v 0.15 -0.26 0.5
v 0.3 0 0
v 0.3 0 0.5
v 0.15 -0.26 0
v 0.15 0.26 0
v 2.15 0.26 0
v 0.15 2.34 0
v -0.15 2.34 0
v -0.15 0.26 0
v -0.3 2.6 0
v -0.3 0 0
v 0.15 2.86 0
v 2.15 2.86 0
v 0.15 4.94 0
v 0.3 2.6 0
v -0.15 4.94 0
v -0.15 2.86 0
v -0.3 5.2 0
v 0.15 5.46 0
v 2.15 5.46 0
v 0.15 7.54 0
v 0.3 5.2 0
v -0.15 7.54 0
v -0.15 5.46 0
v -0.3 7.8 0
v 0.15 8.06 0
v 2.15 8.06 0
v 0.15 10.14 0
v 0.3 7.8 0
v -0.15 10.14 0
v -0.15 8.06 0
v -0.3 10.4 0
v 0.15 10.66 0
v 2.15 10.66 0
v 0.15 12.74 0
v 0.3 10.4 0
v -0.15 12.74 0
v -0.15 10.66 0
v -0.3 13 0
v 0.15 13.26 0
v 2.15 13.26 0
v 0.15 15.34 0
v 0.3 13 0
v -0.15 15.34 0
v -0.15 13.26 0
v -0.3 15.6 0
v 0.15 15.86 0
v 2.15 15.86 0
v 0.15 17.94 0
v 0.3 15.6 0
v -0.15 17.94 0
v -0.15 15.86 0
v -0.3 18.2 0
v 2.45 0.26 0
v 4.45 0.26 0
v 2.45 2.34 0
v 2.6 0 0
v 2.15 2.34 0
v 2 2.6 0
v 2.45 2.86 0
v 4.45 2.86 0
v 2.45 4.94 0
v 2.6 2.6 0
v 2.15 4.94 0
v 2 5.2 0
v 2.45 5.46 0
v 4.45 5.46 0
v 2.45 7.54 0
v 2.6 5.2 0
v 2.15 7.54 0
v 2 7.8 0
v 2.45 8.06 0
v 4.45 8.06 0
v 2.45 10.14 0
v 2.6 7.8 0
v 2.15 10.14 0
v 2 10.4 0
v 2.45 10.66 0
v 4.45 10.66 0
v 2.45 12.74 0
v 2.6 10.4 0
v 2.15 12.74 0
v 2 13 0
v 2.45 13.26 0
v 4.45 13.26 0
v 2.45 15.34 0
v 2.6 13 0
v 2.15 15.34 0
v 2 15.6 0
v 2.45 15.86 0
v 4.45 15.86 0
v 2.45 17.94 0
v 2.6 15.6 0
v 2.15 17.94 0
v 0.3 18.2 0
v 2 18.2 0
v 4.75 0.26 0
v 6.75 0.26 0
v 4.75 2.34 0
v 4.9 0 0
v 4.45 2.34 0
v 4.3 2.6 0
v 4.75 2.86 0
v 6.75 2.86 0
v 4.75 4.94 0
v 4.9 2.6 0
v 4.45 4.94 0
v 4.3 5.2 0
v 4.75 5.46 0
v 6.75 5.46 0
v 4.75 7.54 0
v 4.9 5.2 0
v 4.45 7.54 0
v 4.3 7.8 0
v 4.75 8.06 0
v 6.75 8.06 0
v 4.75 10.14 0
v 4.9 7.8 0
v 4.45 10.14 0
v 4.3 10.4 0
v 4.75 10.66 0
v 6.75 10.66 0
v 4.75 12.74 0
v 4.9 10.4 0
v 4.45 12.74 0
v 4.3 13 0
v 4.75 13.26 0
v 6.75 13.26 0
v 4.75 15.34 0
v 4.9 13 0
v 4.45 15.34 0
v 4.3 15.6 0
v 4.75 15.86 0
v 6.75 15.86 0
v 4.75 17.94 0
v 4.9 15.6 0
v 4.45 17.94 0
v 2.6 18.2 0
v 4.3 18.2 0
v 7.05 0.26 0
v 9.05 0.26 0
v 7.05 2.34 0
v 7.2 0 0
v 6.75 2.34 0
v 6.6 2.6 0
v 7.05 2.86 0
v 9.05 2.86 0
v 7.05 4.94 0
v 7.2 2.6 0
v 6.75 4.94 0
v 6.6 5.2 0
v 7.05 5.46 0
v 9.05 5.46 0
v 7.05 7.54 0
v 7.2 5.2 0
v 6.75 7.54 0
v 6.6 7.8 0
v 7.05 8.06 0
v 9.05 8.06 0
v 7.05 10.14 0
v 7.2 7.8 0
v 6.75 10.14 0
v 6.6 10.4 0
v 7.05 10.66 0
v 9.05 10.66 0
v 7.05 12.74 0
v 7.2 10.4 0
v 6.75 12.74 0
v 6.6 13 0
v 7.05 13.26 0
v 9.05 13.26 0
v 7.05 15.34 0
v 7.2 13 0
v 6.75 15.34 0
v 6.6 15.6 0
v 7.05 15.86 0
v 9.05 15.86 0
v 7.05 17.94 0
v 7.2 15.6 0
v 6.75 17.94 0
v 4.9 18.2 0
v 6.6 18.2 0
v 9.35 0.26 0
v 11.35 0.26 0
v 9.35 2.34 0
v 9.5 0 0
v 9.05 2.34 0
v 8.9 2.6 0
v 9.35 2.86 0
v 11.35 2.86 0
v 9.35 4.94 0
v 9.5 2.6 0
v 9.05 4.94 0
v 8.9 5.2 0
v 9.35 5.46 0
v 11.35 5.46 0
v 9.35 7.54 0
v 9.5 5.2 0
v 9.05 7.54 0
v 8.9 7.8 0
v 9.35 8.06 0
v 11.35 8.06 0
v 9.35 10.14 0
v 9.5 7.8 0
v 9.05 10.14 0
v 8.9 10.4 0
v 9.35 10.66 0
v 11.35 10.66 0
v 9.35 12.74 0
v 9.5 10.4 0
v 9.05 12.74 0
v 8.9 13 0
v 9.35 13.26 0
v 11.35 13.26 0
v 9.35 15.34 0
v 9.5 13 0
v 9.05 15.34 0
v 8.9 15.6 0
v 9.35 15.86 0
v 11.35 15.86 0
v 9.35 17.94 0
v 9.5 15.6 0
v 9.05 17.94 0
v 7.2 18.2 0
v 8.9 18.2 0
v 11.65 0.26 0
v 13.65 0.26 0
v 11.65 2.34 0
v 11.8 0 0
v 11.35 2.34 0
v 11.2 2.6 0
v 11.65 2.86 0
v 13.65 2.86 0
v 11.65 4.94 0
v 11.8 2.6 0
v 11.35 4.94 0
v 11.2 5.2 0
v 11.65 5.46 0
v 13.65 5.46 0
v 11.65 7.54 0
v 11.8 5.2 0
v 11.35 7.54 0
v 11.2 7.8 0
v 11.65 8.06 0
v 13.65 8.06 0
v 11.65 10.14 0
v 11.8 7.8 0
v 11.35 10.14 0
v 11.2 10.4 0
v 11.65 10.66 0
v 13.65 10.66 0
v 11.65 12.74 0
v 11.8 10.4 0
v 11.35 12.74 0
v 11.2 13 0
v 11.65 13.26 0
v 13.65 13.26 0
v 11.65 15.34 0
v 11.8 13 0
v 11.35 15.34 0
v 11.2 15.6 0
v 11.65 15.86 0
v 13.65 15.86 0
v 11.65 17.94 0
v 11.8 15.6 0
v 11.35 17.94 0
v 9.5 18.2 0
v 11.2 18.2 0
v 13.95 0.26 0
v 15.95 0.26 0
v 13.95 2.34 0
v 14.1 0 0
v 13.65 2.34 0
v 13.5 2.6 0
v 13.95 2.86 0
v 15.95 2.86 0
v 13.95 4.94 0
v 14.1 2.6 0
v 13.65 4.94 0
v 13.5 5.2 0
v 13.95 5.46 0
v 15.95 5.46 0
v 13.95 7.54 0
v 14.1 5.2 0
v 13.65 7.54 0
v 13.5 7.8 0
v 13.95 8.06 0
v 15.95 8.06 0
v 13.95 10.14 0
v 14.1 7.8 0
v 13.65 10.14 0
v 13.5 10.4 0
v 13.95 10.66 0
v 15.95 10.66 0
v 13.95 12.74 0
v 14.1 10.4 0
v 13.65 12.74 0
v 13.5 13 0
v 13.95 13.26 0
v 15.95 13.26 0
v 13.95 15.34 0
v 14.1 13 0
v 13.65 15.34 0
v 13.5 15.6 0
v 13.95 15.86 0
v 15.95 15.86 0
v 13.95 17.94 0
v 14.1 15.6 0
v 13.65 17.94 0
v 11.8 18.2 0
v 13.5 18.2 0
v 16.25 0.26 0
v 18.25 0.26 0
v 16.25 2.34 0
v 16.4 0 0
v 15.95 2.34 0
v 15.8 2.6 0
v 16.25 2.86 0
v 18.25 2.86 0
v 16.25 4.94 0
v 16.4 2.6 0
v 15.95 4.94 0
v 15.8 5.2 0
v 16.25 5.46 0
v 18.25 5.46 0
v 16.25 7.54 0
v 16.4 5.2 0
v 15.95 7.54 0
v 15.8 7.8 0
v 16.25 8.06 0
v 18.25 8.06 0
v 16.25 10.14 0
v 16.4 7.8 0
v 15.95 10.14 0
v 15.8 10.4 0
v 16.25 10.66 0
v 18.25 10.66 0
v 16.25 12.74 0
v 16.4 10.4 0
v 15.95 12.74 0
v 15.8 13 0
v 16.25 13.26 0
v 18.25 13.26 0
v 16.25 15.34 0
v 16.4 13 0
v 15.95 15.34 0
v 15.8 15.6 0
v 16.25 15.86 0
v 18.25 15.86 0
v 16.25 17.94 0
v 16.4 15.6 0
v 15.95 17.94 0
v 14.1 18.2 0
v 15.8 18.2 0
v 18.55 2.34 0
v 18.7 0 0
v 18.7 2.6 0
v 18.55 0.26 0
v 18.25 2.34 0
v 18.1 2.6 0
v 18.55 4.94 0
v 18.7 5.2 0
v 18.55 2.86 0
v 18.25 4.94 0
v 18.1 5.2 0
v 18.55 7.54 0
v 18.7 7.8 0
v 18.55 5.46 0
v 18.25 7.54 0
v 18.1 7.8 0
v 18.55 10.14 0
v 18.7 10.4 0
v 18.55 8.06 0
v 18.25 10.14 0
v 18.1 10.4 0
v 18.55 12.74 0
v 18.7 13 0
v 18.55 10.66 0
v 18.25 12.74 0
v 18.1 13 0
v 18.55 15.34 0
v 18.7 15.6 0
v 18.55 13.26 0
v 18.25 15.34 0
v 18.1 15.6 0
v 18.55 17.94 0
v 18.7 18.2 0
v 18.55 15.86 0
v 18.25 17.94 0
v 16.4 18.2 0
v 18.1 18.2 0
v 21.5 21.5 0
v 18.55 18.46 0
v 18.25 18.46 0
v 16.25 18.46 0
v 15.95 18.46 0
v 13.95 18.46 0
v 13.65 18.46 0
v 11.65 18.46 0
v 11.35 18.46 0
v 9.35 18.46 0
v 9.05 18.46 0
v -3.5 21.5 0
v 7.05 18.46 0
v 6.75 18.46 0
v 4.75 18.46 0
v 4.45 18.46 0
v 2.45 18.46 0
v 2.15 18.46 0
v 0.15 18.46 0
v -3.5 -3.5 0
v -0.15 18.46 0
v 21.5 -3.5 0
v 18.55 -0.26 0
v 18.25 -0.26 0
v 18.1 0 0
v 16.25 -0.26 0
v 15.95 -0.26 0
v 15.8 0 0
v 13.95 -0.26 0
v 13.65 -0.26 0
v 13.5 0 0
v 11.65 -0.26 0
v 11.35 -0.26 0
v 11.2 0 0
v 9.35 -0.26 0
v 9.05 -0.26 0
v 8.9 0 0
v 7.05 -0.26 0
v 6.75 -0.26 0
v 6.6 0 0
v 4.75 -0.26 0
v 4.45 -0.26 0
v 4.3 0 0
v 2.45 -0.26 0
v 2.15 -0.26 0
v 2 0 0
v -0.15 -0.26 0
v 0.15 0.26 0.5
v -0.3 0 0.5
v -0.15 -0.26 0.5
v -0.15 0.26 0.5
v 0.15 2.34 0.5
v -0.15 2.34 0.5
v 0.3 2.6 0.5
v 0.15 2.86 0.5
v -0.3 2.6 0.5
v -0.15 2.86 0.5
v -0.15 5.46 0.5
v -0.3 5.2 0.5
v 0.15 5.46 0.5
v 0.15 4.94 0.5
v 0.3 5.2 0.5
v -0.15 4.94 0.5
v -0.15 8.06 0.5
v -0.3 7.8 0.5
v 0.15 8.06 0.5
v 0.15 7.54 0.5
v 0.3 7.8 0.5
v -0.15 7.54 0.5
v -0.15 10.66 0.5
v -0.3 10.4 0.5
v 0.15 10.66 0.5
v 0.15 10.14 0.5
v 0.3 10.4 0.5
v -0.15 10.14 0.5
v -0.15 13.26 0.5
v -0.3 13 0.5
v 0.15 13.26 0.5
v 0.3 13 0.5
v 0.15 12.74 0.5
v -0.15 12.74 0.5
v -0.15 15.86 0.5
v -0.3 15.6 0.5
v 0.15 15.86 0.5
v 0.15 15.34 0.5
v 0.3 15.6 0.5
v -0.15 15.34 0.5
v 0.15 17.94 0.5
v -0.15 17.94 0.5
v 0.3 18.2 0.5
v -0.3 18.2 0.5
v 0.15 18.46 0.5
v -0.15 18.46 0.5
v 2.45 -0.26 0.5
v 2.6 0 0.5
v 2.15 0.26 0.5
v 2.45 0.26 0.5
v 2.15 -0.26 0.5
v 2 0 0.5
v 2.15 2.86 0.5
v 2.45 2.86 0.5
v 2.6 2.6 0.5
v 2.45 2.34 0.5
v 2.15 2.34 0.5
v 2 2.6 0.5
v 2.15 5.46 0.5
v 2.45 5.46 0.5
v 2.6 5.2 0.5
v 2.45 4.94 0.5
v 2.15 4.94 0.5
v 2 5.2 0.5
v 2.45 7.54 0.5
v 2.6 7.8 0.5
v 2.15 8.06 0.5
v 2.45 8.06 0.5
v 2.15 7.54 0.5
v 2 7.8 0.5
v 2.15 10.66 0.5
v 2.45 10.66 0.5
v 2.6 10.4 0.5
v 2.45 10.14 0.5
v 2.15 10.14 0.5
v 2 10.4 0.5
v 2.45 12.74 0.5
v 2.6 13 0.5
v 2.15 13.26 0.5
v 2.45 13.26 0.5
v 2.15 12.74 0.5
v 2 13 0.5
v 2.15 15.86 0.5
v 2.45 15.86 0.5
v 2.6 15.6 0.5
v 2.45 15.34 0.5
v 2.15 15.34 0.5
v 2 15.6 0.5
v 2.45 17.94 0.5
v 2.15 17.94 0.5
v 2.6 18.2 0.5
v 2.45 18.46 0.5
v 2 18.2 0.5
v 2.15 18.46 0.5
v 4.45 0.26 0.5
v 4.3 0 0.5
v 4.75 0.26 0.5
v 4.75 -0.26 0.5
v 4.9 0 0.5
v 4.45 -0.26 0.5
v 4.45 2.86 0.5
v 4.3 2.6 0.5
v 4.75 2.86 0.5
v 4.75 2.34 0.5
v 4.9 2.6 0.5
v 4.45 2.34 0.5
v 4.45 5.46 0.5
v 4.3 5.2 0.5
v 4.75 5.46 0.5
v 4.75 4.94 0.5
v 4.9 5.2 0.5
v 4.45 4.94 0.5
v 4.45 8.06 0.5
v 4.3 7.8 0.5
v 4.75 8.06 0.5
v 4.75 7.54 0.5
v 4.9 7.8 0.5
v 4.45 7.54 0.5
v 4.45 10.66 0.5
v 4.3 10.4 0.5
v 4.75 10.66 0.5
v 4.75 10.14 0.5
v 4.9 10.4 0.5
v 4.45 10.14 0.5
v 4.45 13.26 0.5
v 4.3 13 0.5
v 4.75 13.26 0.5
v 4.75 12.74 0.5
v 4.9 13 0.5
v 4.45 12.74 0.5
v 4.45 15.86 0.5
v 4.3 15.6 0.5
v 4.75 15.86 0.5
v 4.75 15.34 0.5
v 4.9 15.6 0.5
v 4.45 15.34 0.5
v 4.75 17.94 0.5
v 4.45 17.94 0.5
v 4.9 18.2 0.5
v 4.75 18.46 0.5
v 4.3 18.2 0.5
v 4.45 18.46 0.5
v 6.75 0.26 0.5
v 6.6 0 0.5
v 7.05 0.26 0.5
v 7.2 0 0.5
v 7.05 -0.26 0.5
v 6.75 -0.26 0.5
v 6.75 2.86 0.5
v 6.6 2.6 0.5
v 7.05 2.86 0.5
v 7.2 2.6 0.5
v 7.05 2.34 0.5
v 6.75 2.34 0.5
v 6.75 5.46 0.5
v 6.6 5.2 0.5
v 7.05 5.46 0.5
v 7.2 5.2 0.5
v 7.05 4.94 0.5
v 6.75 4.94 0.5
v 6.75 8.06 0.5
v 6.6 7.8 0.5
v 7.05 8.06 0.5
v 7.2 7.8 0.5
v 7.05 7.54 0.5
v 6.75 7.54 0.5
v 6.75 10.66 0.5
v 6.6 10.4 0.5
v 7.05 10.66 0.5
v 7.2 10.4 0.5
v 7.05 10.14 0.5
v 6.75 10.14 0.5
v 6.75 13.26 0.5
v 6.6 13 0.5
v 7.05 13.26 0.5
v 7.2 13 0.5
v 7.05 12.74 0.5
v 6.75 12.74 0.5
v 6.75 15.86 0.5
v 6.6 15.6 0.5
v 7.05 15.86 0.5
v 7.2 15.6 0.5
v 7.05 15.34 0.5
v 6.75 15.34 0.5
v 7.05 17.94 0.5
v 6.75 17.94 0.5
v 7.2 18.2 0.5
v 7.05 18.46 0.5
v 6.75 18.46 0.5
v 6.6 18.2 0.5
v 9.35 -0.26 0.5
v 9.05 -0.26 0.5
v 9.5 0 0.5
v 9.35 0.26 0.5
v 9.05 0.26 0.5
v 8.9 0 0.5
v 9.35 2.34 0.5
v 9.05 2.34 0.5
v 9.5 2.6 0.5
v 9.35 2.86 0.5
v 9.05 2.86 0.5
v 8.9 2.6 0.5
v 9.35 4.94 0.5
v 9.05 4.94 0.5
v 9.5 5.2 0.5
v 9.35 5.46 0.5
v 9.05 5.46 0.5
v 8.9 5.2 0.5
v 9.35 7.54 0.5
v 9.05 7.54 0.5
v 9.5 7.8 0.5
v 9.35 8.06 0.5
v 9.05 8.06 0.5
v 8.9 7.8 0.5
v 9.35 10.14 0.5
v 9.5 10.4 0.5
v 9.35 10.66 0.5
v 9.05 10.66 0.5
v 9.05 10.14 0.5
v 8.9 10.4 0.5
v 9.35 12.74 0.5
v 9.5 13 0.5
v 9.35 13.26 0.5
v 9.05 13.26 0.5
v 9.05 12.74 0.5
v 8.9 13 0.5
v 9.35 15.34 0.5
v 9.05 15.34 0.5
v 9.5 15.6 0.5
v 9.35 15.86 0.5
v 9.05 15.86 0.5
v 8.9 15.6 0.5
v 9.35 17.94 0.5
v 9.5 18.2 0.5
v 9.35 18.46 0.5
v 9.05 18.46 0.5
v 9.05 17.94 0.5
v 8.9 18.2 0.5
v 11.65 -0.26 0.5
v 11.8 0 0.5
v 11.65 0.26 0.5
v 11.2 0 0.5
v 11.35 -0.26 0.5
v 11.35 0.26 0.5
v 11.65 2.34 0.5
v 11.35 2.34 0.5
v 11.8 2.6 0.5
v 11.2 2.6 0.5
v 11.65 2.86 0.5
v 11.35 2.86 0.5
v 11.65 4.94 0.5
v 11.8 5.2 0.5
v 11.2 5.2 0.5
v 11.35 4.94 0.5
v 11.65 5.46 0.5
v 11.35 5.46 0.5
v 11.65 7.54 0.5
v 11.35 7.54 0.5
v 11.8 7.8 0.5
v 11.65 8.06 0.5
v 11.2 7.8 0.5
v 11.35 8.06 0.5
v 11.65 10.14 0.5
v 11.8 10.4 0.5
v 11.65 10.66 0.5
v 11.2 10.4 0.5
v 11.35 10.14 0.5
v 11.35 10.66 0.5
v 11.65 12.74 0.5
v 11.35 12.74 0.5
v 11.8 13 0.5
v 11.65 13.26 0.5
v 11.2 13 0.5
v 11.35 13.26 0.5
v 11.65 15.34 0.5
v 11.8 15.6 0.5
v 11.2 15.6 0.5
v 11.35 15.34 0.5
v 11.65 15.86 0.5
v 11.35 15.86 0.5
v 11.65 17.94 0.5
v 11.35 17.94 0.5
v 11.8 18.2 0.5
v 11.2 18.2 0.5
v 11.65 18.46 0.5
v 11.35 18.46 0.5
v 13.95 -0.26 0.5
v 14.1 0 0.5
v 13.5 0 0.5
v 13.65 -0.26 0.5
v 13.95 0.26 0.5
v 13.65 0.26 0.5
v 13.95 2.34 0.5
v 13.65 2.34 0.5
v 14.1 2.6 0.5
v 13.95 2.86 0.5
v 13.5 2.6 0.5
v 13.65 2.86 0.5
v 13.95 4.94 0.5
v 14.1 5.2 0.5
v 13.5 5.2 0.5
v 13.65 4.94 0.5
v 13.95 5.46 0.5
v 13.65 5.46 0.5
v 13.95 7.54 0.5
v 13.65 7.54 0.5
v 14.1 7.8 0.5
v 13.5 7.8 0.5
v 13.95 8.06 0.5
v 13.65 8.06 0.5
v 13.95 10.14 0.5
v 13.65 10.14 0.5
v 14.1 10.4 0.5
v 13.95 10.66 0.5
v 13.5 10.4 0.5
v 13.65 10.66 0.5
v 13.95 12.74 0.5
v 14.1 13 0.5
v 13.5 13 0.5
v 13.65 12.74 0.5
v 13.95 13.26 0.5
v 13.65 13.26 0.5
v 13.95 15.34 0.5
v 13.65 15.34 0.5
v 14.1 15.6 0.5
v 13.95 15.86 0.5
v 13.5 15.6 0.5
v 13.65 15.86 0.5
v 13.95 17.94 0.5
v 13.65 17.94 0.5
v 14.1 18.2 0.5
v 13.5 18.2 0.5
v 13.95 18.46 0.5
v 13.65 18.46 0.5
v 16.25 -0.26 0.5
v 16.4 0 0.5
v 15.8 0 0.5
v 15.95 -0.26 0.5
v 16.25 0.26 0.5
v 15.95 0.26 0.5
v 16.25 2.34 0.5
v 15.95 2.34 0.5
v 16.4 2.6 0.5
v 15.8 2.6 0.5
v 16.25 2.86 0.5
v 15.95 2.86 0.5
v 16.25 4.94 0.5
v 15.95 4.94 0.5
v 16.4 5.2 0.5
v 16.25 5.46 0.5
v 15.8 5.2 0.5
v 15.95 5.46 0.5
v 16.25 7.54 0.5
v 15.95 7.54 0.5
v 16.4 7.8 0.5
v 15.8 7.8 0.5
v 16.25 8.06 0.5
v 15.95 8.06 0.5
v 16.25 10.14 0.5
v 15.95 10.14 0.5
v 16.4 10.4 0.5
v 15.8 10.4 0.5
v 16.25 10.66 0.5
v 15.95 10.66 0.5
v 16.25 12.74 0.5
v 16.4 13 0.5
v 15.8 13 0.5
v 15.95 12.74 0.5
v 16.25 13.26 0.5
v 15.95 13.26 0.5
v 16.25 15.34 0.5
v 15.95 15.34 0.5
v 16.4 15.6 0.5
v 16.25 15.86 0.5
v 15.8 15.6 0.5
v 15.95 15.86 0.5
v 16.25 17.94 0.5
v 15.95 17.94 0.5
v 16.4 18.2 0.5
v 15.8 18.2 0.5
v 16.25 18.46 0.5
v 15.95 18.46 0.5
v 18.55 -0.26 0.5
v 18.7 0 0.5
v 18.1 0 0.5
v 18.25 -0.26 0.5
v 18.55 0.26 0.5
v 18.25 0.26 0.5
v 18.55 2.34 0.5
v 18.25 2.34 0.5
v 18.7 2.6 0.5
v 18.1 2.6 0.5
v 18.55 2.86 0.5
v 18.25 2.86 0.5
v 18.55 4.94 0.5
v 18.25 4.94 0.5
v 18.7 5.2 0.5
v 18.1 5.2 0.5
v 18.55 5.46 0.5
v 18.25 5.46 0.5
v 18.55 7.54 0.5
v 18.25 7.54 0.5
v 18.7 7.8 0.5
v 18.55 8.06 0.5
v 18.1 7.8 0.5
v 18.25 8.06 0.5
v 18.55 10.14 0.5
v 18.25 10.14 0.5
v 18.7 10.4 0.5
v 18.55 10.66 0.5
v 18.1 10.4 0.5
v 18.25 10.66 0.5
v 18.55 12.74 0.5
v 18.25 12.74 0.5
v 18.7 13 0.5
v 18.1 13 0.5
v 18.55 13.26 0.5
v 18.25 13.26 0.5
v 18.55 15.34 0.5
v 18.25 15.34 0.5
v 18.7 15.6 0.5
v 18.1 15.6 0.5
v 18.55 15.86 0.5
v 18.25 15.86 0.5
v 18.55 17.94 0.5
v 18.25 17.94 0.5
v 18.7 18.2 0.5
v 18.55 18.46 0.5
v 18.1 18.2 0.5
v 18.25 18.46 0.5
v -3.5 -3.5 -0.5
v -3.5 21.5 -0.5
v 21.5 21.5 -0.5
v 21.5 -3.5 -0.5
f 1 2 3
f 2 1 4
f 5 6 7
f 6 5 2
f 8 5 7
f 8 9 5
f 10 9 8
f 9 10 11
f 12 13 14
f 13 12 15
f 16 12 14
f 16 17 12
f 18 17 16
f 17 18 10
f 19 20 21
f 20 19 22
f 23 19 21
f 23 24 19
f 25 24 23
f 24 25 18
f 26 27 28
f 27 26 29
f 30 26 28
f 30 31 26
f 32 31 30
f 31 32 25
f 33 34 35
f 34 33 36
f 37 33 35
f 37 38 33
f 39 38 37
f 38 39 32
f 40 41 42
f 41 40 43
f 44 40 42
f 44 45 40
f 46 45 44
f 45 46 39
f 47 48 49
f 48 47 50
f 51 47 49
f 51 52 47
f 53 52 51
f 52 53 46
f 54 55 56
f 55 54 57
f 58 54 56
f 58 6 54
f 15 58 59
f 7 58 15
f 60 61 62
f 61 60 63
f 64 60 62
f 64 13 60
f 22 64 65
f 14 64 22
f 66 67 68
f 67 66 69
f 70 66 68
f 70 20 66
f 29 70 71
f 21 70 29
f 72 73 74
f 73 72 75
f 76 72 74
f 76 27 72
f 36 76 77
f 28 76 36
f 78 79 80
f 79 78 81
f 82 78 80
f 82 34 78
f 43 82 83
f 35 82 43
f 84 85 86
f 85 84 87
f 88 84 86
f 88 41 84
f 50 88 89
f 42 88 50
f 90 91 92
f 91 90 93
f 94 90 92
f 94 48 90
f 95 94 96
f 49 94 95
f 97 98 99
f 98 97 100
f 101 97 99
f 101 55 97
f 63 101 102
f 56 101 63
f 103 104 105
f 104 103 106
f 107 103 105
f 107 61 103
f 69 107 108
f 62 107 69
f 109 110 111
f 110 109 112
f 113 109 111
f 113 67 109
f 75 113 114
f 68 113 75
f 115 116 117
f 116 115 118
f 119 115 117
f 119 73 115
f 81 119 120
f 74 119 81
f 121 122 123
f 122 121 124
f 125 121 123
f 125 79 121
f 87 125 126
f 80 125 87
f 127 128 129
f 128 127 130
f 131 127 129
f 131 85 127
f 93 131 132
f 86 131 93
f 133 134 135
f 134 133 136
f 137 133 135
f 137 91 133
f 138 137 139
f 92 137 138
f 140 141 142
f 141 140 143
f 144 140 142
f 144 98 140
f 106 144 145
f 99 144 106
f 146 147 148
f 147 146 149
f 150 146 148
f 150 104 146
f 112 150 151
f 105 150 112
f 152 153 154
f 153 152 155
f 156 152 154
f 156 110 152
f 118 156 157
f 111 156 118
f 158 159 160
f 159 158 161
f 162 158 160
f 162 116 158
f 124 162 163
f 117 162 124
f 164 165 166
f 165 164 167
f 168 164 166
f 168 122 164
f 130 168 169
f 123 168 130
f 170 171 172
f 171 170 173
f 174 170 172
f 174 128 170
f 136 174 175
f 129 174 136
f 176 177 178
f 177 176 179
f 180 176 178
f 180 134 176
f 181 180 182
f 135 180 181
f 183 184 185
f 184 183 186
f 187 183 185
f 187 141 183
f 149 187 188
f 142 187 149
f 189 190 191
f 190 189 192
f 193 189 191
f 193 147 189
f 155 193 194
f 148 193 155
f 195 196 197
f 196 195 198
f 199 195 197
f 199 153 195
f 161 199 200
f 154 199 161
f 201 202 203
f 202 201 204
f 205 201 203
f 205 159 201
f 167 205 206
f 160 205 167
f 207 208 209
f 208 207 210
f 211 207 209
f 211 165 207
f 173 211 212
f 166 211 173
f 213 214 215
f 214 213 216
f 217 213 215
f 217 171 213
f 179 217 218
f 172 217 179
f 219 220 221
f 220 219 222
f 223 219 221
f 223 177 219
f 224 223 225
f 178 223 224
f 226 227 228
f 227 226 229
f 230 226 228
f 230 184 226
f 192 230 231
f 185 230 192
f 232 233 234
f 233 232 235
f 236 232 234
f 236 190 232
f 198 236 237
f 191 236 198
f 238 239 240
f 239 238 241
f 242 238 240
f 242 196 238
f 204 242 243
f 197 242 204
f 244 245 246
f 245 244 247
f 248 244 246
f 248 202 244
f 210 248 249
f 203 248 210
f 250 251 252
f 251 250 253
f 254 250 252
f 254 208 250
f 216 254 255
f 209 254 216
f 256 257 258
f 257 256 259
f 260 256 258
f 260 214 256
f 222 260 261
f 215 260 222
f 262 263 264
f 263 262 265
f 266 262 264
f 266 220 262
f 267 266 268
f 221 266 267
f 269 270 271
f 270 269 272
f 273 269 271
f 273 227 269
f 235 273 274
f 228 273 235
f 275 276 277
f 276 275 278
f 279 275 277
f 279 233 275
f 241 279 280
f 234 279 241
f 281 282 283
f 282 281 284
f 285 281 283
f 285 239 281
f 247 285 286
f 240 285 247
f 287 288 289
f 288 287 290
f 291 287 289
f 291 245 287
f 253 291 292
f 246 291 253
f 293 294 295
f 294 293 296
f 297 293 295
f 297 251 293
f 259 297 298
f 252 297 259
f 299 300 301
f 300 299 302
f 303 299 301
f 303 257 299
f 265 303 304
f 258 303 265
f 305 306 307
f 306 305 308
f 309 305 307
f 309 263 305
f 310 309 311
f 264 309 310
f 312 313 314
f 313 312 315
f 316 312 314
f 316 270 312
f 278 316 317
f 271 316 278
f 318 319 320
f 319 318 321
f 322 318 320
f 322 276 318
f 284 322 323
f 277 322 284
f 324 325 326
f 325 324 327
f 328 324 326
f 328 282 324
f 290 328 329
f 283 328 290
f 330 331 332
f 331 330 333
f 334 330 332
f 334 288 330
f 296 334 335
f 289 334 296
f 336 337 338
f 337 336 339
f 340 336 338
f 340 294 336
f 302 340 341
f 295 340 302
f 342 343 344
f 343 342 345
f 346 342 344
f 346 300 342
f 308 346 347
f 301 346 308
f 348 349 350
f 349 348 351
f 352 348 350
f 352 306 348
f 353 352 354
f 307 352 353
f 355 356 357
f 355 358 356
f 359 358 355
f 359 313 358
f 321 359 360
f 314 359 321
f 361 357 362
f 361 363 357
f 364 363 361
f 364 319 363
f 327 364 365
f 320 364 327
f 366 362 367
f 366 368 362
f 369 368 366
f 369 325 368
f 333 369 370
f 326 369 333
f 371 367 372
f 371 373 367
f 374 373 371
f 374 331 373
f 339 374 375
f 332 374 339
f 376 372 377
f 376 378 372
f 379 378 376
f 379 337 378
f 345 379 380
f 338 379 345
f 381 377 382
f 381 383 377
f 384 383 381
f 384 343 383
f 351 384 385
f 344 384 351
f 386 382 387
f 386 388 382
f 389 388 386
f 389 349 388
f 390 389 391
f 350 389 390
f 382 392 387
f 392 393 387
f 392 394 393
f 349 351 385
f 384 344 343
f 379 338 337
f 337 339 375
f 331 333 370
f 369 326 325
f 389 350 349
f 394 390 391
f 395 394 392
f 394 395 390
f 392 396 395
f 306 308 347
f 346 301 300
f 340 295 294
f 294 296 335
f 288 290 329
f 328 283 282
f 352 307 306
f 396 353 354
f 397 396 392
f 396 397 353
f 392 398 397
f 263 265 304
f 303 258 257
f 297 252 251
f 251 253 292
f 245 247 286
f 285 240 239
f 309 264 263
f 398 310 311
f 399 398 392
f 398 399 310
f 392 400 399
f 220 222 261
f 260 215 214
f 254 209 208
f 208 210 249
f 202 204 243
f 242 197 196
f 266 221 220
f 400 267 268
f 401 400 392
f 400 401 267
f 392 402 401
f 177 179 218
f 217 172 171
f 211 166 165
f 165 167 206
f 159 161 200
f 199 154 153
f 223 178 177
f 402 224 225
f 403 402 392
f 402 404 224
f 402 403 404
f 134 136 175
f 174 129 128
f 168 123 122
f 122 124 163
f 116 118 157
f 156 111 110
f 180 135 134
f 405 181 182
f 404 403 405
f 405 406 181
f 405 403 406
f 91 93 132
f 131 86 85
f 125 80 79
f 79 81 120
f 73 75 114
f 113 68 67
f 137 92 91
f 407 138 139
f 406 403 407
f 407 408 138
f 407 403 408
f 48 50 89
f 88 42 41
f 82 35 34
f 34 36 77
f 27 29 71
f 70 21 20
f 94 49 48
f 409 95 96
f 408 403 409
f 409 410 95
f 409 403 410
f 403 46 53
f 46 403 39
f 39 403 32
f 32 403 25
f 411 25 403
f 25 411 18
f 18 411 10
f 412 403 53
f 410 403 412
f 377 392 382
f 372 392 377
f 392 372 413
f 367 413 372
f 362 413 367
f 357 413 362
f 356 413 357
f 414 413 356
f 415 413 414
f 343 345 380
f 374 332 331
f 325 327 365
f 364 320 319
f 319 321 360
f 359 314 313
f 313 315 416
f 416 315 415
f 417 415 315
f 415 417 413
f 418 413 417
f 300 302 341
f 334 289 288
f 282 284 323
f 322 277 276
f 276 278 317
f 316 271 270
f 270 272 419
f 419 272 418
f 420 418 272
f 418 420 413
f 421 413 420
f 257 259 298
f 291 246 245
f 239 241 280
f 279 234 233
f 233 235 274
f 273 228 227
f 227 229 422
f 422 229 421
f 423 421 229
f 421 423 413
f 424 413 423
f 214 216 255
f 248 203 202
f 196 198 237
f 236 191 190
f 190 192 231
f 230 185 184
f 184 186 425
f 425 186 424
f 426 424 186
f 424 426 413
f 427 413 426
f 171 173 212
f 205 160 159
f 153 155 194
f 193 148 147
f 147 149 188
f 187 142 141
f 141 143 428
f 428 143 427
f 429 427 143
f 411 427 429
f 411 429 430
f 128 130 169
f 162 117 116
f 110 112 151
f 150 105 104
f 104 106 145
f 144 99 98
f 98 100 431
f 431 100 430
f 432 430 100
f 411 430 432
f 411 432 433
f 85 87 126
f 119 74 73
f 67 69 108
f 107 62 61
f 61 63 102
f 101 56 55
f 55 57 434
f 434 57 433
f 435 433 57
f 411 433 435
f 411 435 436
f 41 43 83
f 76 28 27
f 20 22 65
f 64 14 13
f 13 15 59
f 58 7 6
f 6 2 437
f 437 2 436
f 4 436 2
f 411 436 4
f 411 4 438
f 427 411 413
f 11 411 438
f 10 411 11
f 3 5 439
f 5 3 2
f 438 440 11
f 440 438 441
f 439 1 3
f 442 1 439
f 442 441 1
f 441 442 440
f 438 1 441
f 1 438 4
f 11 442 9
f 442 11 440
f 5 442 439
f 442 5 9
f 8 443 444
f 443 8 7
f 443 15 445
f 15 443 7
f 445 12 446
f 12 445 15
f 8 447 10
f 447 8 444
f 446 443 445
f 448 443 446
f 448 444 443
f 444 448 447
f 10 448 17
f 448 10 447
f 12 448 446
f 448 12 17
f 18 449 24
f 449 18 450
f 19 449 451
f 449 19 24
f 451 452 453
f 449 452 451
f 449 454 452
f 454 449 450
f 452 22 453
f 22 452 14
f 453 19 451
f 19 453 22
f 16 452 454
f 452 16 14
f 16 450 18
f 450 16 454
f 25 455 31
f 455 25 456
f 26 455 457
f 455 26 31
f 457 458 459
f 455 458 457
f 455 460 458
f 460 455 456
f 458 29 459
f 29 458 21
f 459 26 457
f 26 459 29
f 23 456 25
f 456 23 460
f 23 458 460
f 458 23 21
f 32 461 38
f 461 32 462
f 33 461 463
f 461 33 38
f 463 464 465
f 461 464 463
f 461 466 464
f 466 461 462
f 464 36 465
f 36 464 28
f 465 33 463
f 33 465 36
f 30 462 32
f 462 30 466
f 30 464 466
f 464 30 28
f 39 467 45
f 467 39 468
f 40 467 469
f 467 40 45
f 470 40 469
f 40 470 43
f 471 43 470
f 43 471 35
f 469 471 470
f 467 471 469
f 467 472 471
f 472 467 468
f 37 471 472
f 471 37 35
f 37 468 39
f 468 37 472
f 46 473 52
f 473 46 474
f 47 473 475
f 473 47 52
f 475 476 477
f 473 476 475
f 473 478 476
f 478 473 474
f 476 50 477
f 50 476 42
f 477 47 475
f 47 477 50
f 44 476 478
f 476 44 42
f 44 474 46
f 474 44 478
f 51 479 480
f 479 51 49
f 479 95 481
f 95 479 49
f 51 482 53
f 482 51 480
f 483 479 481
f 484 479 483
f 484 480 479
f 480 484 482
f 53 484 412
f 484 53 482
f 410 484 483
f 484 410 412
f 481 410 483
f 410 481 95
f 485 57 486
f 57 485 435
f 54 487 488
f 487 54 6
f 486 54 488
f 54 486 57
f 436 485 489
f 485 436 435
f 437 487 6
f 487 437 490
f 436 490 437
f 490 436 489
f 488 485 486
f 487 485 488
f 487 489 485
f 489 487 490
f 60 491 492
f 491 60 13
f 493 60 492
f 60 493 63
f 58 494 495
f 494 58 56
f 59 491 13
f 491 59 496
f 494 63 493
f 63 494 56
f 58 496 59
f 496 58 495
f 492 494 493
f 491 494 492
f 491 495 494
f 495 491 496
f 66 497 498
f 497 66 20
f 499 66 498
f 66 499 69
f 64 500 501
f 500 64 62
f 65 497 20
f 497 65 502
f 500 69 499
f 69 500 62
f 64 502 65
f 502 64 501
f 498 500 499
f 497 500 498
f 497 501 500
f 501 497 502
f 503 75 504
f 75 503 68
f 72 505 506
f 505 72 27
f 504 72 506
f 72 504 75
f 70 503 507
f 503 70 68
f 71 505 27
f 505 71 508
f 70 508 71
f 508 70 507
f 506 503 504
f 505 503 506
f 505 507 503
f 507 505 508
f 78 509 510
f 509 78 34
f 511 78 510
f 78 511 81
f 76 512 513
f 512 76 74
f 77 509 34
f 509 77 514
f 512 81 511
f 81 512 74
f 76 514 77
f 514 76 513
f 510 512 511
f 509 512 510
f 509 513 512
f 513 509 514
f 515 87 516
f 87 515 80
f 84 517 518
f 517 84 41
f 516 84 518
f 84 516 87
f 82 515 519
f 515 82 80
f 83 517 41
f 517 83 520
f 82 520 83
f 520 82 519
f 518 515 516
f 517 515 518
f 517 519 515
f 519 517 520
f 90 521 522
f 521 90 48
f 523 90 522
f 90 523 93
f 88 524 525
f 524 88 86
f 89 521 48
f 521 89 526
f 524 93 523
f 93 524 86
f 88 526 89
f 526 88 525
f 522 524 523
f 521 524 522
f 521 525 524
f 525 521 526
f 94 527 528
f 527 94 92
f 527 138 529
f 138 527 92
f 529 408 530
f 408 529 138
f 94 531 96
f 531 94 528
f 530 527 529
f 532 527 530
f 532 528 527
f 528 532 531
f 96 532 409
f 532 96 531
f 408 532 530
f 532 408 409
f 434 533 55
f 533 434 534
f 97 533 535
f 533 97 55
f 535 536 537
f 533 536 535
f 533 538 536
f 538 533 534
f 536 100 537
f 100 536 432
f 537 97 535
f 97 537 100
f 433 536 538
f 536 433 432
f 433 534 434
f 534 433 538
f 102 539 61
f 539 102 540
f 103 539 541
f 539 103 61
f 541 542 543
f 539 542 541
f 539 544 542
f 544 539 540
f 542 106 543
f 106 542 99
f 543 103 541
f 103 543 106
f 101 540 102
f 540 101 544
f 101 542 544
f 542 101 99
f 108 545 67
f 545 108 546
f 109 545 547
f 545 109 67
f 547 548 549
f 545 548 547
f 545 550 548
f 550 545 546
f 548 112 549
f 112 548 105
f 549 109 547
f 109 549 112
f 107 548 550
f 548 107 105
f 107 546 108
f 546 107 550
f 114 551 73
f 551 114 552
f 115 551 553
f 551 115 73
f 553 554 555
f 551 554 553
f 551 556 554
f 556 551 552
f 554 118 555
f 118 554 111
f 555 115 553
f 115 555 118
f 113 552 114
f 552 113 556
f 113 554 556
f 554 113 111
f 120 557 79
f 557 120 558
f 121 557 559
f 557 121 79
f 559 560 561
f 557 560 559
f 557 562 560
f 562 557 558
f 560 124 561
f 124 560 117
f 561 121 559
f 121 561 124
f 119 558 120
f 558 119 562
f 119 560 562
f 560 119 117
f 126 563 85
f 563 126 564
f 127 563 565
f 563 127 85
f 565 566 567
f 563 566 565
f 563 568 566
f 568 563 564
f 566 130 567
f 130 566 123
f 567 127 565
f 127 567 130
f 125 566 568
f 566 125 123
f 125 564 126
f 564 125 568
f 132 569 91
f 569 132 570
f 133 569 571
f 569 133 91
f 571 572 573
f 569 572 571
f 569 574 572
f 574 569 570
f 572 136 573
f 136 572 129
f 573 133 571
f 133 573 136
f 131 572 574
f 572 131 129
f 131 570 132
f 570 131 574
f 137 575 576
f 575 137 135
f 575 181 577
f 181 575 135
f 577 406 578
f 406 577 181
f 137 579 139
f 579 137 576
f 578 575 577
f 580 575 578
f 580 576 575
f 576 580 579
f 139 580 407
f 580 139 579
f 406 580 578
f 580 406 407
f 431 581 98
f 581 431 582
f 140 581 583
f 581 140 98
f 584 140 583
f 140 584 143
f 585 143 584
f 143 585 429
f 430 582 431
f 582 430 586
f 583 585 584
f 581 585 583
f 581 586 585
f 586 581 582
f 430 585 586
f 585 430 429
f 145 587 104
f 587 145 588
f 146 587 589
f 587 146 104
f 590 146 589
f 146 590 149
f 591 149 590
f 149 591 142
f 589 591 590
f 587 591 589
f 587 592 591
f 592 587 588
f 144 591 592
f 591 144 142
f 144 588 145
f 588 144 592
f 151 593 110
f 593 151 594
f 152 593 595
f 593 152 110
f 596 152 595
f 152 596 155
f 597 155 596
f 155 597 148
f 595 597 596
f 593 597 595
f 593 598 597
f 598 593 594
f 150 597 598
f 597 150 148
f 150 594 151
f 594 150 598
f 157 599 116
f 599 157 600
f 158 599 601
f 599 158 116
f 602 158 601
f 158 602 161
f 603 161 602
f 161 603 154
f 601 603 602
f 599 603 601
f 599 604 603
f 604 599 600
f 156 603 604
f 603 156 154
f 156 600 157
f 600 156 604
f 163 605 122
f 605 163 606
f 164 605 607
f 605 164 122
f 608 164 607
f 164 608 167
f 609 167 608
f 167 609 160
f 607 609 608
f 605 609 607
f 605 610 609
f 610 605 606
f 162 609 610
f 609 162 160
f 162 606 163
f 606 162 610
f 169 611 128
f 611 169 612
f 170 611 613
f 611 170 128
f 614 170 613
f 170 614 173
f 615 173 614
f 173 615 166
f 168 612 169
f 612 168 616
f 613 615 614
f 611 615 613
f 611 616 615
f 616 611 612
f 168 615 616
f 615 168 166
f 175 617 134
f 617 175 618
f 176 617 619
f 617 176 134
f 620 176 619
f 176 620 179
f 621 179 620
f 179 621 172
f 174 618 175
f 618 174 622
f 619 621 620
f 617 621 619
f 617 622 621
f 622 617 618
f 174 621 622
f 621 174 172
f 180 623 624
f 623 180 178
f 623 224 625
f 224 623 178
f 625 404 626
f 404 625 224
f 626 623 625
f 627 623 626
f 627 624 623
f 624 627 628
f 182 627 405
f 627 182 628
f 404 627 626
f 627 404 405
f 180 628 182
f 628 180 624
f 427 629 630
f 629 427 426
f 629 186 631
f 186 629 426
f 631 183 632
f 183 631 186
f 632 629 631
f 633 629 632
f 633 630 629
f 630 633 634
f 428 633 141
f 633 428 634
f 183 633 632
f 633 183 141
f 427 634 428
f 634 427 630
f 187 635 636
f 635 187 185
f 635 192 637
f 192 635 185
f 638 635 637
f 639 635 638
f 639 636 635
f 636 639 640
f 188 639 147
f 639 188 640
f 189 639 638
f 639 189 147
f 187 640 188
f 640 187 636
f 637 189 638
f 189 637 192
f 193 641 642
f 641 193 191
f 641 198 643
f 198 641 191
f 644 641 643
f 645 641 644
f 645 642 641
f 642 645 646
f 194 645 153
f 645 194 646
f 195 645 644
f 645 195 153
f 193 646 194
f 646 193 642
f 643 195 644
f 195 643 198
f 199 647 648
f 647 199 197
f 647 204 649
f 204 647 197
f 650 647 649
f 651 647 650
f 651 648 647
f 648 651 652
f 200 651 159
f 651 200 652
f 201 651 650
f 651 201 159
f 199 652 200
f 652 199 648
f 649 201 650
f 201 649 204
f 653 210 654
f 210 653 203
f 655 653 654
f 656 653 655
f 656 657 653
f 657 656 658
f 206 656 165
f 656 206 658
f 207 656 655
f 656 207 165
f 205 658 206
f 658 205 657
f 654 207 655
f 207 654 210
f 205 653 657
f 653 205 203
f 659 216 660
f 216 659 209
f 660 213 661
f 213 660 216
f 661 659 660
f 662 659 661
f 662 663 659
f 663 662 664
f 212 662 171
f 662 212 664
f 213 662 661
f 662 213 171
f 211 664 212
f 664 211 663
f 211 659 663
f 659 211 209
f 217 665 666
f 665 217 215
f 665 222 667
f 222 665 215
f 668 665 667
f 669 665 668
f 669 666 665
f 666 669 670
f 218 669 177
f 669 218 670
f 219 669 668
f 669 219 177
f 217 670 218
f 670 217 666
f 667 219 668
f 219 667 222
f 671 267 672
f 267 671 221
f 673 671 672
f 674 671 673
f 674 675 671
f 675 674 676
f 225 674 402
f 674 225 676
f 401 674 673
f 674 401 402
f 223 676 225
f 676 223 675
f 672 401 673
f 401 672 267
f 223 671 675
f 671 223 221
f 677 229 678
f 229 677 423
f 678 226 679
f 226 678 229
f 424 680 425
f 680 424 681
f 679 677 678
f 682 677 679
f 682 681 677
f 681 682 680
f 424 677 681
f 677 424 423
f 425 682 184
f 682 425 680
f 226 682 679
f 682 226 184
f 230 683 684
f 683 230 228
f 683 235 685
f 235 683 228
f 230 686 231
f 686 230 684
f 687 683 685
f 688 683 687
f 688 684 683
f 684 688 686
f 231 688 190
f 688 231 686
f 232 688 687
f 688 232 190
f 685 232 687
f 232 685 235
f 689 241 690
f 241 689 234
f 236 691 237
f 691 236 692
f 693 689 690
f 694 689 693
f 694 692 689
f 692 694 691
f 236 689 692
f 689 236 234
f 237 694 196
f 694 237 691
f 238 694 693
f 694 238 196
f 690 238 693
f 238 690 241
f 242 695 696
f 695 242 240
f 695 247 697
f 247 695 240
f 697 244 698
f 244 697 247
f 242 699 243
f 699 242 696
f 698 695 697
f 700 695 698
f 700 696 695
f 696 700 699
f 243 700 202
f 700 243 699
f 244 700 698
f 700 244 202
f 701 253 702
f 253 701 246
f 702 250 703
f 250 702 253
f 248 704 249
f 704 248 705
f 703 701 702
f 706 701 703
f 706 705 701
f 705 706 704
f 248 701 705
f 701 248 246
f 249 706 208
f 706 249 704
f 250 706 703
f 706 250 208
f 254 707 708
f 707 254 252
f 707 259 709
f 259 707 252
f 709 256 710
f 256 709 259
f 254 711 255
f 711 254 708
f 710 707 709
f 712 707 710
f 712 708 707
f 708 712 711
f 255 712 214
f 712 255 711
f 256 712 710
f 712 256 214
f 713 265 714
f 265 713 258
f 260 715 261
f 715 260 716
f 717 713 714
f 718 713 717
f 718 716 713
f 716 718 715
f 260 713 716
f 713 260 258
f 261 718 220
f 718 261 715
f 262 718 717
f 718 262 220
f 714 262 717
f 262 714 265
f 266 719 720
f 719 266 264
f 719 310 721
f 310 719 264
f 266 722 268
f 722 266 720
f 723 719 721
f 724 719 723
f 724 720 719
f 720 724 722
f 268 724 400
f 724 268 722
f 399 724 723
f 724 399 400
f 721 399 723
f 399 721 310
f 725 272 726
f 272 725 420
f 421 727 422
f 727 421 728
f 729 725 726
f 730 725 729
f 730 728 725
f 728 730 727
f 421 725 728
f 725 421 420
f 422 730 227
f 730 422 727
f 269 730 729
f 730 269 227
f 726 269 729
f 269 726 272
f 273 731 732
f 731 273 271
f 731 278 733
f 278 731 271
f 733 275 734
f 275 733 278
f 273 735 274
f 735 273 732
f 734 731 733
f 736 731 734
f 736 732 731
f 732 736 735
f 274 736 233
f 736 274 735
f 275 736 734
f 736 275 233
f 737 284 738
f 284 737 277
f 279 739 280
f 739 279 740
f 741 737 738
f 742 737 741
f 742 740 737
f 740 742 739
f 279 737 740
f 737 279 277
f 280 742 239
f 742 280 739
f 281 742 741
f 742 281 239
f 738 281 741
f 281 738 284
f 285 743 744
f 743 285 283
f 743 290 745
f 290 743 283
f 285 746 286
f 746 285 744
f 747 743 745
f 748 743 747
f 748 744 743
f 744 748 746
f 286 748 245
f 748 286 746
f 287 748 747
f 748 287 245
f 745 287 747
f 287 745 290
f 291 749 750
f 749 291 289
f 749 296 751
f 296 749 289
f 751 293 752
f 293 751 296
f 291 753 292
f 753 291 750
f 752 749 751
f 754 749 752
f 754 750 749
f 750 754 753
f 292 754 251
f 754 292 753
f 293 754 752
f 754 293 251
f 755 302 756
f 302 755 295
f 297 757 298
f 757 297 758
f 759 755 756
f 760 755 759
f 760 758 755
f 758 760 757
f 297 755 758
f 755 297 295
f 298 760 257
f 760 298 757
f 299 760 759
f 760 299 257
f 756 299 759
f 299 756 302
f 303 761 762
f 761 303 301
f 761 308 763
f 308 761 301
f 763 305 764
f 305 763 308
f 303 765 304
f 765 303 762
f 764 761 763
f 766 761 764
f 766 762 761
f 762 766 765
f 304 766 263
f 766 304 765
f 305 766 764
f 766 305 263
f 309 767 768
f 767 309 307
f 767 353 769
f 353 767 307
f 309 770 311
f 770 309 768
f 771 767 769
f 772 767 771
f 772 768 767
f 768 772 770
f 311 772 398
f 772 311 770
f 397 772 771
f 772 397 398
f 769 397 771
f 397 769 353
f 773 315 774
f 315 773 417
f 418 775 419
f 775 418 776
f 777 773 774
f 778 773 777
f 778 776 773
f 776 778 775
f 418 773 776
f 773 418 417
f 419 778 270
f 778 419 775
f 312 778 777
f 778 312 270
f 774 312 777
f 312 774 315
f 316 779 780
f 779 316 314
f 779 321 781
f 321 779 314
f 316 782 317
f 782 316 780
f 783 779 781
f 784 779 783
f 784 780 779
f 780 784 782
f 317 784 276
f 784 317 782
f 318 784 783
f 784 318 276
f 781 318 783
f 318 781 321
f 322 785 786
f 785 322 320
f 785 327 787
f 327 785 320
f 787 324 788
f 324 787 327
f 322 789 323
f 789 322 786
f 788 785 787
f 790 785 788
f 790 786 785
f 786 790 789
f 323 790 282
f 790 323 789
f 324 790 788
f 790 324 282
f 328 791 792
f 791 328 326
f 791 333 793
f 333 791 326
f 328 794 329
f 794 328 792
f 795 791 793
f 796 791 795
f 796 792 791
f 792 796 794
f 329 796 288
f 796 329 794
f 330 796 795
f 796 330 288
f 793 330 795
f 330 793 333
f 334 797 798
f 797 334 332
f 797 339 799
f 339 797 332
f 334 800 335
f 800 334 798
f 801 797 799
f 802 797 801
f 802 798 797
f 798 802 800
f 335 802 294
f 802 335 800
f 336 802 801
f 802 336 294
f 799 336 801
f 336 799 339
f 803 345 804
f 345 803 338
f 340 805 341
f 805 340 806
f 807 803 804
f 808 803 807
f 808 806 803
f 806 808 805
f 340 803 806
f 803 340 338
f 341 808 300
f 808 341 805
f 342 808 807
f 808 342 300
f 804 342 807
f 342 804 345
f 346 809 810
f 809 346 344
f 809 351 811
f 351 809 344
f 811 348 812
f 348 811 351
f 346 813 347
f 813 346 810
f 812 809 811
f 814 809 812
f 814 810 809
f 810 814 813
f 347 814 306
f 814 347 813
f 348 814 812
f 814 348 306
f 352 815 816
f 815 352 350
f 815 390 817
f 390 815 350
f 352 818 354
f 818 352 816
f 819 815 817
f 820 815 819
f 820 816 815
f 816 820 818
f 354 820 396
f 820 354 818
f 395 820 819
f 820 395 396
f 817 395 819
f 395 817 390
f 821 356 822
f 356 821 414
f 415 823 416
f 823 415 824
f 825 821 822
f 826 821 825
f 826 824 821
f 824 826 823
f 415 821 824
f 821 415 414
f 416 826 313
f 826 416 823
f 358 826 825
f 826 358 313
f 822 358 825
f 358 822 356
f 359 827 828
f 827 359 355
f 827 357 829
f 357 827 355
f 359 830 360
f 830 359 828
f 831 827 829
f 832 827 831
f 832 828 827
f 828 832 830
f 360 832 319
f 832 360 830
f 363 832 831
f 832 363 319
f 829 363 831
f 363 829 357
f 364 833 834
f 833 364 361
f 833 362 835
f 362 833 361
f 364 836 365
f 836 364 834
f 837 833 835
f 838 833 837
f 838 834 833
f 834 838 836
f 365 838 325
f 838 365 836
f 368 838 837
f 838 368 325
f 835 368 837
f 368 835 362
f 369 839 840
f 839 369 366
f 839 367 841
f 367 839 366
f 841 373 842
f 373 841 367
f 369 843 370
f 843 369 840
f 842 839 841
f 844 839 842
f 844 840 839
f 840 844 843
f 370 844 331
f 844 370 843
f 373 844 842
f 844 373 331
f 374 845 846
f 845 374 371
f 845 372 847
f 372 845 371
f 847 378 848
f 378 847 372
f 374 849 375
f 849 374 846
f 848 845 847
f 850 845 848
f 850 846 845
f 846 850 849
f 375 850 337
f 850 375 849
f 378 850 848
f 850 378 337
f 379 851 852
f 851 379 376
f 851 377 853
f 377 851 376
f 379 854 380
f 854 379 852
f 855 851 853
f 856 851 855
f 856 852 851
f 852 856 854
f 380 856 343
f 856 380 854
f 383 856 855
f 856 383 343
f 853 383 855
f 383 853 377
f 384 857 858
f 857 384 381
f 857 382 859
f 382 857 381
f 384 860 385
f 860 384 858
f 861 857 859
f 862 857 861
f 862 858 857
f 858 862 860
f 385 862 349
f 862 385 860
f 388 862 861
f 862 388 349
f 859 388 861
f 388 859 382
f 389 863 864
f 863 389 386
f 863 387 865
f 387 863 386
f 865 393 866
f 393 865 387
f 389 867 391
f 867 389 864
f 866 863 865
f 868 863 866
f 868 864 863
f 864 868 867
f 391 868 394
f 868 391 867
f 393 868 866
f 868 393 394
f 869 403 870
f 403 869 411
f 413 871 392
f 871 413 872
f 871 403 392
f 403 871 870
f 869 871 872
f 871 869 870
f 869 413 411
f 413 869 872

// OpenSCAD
a = 0.3;//rivet_radius
b = 0.5;//rivet_height
c = 6;//number of polygons

module target(){
	for(i = [0:a+2:+20], j = [0:a*2+2:+20]){
		linear_extrude(height = b){
			translate([i,j,0])
			color("teal")	
				circle(a, $fn = c);
		}
	}
}
        
module tool(){
    translate([-3.5,-3.5,-b])		
        cube([25,25,b]);
}

union(){
    target();
    tool();
}
